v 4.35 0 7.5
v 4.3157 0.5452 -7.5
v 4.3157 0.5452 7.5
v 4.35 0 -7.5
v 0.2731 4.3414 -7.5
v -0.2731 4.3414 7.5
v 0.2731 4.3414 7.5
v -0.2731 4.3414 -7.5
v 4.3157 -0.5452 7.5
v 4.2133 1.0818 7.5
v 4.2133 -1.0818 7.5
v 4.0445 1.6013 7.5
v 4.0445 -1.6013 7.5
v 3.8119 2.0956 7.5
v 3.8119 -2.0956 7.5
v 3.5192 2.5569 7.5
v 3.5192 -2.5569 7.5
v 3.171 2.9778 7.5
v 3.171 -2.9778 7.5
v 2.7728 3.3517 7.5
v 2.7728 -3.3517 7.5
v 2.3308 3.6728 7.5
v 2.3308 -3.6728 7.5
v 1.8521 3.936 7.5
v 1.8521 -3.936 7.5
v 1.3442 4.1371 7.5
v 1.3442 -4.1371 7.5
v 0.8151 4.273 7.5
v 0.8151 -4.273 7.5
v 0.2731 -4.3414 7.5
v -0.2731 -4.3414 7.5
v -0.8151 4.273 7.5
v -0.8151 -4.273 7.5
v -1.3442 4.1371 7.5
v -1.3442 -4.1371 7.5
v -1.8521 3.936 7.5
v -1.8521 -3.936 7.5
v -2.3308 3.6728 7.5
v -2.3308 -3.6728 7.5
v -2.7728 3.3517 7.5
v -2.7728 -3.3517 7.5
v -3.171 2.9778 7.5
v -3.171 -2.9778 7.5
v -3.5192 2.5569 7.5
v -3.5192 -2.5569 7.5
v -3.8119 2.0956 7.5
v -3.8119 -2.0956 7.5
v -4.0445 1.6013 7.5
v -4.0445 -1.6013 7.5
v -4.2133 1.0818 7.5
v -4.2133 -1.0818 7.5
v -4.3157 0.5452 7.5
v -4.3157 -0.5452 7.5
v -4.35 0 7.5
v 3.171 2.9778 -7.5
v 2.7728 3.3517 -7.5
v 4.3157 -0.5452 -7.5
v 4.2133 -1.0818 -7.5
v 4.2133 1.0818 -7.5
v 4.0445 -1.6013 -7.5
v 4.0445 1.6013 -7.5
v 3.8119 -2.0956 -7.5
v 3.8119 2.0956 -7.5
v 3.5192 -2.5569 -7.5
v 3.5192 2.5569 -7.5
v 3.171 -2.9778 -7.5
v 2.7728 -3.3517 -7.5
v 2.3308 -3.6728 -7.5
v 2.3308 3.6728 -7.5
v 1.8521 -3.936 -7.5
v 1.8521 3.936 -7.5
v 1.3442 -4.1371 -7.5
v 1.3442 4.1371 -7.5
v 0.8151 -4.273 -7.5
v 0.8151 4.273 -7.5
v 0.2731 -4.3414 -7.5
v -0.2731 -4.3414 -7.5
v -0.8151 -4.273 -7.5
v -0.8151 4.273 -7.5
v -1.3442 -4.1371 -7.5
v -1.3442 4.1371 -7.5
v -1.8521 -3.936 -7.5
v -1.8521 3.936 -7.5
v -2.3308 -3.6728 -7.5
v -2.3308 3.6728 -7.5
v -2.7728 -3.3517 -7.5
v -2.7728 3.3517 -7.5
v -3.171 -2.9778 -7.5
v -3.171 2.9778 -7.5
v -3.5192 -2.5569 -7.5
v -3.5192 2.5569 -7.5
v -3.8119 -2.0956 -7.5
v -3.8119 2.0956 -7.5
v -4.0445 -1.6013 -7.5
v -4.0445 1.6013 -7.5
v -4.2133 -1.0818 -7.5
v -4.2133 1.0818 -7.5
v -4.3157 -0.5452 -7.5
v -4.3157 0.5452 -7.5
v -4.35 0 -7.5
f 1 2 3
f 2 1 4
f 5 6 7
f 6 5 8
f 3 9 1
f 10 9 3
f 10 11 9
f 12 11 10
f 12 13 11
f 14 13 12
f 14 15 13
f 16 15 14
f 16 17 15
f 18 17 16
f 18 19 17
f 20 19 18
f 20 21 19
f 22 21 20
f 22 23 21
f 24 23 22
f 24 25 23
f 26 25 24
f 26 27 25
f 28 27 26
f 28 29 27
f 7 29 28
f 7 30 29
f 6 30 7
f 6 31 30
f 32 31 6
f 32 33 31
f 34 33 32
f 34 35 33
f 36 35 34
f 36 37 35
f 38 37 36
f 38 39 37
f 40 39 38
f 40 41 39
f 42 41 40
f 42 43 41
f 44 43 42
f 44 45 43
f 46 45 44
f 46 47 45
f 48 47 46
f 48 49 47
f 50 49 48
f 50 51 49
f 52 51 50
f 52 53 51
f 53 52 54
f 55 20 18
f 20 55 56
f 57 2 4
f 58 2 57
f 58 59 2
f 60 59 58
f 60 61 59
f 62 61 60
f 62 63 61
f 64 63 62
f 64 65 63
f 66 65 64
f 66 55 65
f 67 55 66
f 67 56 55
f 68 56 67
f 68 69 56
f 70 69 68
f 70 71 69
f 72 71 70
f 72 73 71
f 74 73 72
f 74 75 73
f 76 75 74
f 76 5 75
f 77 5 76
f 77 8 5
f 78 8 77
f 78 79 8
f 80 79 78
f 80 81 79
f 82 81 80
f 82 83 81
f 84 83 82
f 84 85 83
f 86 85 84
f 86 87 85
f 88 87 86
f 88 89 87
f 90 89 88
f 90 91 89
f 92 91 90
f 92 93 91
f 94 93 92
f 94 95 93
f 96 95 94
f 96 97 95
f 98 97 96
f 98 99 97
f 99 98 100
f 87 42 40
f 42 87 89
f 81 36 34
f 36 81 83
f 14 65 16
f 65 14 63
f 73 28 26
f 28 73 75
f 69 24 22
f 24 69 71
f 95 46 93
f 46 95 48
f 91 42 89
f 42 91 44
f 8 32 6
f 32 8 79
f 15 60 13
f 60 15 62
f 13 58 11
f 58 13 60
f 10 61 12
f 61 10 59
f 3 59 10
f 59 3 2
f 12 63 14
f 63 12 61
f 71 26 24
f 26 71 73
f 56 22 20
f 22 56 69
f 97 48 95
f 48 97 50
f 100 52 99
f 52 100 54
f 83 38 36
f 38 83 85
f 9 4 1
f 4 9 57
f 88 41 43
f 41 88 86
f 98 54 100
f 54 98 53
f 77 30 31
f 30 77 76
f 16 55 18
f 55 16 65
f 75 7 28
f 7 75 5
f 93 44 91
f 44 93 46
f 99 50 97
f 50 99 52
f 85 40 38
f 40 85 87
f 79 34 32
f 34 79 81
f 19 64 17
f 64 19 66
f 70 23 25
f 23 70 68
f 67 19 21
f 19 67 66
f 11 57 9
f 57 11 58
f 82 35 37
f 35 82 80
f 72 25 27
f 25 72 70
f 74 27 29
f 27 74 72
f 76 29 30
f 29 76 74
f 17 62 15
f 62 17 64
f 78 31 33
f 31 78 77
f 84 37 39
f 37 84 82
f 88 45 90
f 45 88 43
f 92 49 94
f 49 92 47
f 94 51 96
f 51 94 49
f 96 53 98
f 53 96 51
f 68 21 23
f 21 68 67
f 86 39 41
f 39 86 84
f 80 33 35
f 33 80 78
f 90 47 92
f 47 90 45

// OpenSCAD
$fn = 50;


difference() {
	union() {
		translate(v = [0, 0, -7.5000000000]) {
			cylinder(h = 15, r = 4.3500000000);
		}
	}
	union() {
		translate(v = [0, 0, -100.0000000000]) {
			cylinder(h = 200, r = 0);
		}
	}
}
